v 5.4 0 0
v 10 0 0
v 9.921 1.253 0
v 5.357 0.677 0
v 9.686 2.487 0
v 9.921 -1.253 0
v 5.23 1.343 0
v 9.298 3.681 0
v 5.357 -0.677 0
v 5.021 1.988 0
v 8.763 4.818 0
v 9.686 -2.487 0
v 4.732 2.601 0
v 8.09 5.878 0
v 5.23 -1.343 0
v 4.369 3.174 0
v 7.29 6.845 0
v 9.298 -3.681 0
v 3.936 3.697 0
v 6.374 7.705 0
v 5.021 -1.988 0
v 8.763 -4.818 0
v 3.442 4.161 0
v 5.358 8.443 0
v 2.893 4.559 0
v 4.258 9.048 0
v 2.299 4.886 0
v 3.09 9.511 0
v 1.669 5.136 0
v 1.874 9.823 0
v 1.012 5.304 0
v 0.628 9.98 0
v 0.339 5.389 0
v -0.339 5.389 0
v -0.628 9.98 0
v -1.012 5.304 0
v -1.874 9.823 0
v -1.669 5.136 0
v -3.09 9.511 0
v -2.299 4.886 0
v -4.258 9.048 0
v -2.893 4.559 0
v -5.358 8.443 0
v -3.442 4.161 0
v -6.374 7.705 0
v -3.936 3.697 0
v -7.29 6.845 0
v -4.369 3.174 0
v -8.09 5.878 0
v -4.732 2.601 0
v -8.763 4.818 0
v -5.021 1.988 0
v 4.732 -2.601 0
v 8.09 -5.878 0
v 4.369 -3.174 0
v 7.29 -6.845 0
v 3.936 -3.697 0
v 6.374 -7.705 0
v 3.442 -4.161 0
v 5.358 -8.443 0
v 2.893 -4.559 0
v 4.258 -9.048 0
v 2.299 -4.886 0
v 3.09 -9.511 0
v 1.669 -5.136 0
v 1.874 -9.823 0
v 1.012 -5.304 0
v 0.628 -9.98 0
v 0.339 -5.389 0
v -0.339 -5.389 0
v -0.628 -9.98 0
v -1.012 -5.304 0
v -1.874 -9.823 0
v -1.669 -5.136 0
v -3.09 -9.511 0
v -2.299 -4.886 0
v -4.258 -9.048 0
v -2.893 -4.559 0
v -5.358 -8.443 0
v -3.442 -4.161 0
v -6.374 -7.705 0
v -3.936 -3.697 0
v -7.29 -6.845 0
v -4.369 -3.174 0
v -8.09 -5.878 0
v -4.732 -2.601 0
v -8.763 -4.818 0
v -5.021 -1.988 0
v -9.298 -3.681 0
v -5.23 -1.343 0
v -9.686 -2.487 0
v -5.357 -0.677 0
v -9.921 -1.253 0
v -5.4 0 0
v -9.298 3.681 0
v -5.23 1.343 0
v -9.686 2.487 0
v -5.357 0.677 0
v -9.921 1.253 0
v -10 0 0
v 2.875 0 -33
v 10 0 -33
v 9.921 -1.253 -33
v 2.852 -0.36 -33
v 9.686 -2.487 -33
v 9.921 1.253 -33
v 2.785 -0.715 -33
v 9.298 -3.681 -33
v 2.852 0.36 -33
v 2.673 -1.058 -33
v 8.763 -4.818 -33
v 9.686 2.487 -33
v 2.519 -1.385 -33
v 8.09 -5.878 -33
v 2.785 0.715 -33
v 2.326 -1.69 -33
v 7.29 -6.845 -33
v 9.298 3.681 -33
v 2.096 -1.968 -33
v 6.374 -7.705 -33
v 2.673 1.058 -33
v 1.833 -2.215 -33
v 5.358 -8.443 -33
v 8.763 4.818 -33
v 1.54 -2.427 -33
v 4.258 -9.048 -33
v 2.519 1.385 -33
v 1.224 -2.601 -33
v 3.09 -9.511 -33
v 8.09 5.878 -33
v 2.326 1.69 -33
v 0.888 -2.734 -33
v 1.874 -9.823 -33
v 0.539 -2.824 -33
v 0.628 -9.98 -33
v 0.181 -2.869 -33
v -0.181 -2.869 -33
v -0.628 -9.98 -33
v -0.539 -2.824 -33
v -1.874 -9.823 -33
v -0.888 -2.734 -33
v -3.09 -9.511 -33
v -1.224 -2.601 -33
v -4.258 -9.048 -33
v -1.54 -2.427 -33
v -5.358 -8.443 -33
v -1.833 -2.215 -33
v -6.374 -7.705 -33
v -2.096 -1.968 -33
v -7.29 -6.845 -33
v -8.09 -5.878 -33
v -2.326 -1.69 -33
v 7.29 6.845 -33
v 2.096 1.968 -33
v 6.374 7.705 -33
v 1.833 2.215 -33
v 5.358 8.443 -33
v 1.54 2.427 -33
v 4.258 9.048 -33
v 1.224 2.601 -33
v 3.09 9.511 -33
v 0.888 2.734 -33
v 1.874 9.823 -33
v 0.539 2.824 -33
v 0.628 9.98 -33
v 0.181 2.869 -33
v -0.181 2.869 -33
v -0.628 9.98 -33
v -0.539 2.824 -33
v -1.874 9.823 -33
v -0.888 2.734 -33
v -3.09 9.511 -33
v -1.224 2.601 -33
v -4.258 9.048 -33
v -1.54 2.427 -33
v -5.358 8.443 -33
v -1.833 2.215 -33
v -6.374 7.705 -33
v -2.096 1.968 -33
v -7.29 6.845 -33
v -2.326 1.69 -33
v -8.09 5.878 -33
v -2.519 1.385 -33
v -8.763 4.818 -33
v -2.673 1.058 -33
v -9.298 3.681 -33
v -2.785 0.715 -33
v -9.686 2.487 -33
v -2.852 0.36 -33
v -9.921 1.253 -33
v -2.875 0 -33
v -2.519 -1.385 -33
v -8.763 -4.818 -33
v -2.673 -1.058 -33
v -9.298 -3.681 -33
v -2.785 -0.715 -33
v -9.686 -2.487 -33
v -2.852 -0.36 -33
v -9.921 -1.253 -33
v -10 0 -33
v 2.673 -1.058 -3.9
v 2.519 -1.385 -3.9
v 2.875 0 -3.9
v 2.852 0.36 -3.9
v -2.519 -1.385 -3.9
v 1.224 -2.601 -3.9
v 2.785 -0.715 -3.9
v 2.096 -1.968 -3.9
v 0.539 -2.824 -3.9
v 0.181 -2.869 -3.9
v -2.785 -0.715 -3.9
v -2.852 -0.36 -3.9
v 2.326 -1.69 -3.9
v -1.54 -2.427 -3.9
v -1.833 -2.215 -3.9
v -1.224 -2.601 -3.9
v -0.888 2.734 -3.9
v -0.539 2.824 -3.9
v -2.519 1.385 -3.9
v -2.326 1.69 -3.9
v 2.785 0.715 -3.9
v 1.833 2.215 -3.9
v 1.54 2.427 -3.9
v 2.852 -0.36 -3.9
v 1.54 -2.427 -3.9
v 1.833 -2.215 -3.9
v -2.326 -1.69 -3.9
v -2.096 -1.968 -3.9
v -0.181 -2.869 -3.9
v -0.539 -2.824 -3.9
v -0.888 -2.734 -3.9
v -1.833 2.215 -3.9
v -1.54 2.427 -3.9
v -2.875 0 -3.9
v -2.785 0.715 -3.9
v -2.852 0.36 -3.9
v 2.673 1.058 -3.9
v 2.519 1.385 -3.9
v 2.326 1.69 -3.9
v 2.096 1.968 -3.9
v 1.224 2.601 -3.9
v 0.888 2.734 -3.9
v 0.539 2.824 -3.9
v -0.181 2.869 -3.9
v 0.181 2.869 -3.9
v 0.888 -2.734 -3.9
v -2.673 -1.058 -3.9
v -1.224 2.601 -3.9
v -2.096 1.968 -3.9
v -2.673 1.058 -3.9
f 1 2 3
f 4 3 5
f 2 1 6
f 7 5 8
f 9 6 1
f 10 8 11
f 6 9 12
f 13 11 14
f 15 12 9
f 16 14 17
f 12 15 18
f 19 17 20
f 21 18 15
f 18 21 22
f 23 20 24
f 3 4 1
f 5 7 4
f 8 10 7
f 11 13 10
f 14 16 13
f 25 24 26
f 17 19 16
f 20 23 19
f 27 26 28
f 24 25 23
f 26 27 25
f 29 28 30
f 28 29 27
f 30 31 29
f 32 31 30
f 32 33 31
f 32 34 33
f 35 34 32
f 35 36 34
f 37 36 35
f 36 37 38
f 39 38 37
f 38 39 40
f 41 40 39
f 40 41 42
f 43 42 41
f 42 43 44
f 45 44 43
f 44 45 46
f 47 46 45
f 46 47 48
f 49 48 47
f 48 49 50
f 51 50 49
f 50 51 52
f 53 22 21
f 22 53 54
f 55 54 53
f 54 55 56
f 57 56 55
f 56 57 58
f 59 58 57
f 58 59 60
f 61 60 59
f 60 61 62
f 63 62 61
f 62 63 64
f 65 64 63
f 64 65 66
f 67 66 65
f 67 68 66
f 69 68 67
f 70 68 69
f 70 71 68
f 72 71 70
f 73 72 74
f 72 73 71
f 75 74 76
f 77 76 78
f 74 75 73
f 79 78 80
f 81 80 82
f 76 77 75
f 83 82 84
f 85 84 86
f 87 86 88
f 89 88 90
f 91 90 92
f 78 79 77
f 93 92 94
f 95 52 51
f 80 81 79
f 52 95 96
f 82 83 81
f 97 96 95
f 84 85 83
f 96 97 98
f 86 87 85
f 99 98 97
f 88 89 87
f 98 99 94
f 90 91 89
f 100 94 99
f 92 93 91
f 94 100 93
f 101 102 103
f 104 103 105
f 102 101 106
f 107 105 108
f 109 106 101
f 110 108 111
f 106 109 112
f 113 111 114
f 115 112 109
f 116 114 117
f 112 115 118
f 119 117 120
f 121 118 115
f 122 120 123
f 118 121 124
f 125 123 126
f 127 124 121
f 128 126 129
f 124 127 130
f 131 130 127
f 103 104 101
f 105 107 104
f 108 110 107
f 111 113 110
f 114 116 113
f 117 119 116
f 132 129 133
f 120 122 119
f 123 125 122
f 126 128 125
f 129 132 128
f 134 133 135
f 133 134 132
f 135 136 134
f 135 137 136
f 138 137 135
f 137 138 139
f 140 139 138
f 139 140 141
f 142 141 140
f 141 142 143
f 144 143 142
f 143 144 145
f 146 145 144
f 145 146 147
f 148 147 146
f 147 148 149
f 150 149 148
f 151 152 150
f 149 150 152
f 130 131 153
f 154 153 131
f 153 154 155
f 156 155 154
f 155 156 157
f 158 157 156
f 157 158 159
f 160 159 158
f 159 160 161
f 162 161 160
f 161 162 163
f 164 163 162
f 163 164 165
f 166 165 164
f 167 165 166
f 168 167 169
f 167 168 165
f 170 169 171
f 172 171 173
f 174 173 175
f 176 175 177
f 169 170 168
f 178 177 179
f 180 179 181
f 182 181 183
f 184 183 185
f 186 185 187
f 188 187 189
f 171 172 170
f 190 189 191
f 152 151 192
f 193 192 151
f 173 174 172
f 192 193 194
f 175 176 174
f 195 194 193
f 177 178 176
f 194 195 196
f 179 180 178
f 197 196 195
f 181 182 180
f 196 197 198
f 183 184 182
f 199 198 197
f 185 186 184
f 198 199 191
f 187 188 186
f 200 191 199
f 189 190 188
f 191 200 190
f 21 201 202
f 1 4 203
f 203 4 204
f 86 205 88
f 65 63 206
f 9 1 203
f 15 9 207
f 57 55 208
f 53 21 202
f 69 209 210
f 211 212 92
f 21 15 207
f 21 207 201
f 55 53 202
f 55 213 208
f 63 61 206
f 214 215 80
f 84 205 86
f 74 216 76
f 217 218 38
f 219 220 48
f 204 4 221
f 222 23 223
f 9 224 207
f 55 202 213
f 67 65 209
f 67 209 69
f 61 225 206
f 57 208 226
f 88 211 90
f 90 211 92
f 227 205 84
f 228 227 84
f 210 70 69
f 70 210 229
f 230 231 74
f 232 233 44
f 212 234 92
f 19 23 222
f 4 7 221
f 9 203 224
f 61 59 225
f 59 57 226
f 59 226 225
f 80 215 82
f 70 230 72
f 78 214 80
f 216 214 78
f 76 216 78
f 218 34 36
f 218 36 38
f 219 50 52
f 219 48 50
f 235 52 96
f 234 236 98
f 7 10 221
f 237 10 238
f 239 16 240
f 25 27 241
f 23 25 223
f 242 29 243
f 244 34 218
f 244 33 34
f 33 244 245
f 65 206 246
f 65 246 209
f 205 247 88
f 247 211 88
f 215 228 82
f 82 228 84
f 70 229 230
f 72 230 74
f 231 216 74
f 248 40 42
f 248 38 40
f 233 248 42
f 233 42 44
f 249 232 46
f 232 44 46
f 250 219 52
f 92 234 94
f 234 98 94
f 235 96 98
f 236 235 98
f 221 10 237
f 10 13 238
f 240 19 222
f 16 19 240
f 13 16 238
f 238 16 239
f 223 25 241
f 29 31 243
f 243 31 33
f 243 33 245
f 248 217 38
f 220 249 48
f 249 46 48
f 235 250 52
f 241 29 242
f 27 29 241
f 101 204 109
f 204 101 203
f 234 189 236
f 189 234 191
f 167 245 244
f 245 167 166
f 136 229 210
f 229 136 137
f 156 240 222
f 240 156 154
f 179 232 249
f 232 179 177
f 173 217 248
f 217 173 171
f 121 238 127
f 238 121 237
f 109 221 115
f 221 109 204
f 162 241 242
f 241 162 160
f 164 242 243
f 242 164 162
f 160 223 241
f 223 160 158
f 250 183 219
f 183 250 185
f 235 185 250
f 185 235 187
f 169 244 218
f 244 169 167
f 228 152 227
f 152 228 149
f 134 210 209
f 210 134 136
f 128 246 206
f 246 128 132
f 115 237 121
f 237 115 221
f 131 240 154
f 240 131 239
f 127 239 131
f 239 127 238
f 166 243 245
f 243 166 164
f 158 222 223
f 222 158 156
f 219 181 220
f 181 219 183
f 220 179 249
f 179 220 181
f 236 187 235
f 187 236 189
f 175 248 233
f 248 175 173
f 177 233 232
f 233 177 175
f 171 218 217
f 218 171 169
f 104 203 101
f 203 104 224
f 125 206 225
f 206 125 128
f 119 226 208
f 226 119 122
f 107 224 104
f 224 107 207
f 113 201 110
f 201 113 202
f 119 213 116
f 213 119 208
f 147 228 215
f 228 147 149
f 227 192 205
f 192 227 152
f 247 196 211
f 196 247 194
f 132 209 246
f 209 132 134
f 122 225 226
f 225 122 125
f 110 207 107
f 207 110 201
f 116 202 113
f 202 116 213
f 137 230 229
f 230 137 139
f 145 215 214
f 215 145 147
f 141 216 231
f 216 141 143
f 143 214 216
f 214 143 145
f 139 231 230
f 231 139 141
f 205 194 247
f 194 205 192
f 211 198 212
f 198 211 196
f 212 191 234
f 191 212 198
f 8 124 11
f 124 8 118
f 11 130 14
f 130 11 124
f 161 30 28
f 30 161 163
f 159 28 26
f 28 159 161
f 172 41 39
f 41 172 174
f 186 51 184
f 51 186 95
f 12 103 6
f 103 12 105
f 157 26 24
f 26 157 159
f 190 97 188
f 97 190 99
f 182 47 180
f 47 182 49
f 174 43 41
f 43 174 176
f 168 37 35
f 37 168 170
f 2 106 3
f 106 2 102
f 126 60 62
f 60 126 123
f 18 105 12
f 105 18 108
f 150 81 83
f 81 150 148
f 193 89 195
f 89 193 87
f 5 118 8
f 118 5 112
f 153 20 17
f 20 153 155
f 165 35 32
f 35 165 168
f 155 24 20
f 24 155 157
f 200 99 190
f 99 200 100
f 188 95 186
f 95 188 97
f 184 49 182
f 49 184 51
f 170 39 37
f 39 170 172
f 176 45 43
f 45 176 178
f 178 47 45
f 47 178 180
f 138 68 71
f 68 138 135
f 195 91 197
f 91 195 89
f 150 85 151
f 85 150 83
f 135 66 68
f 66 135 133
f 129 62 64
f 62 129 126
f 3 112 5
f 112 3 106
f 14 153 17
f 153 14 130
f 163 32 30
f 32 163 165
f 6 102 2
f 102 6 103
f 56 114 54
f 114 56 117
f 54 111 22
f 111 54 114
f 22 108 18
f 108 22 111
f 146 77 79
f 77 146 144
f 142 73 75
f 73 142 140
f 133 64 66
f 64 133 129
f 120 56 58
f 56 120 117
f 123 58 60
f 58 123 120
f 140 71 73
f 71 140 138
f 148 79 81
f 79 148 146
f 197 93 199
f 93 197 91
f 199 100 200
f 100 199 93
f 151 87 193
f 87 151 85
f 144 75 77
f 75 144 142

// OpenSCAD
$fn = 50;


difference() {
	union() {
		translate(v = [0, 0, -33.0000000000]) {
			cylinder(h = 33, r = 10.0000000000);
		}
	}
	union() {
		translate(v = [0, 0, 0]) {
			rotate(a = [0, 0, 0]) {
				difference() {
					union() {
						#translate(v = [0, 0, -33.0000000000]) {
							cylinder(h = 33, r = 2.6000000000);
						}
						#translate(v = [0, 0, -3.9000000000]) {
							cylinder(h = 3.9000000000, r = 10.0000000000, r1 = 2.8750000000, r2 = 5.4000000000);
						}
						#translate(v = [0, 0, -33.0000000000]) {
							cylinder(h = 33, r = 2.8750000000);
						}
						#translate(v = [0, 0, -33.0000000000]) {
							cylinder(h = 33, r = 2.6000000000);
						}
					}
					union();
				}
			}
		}
	}
}
